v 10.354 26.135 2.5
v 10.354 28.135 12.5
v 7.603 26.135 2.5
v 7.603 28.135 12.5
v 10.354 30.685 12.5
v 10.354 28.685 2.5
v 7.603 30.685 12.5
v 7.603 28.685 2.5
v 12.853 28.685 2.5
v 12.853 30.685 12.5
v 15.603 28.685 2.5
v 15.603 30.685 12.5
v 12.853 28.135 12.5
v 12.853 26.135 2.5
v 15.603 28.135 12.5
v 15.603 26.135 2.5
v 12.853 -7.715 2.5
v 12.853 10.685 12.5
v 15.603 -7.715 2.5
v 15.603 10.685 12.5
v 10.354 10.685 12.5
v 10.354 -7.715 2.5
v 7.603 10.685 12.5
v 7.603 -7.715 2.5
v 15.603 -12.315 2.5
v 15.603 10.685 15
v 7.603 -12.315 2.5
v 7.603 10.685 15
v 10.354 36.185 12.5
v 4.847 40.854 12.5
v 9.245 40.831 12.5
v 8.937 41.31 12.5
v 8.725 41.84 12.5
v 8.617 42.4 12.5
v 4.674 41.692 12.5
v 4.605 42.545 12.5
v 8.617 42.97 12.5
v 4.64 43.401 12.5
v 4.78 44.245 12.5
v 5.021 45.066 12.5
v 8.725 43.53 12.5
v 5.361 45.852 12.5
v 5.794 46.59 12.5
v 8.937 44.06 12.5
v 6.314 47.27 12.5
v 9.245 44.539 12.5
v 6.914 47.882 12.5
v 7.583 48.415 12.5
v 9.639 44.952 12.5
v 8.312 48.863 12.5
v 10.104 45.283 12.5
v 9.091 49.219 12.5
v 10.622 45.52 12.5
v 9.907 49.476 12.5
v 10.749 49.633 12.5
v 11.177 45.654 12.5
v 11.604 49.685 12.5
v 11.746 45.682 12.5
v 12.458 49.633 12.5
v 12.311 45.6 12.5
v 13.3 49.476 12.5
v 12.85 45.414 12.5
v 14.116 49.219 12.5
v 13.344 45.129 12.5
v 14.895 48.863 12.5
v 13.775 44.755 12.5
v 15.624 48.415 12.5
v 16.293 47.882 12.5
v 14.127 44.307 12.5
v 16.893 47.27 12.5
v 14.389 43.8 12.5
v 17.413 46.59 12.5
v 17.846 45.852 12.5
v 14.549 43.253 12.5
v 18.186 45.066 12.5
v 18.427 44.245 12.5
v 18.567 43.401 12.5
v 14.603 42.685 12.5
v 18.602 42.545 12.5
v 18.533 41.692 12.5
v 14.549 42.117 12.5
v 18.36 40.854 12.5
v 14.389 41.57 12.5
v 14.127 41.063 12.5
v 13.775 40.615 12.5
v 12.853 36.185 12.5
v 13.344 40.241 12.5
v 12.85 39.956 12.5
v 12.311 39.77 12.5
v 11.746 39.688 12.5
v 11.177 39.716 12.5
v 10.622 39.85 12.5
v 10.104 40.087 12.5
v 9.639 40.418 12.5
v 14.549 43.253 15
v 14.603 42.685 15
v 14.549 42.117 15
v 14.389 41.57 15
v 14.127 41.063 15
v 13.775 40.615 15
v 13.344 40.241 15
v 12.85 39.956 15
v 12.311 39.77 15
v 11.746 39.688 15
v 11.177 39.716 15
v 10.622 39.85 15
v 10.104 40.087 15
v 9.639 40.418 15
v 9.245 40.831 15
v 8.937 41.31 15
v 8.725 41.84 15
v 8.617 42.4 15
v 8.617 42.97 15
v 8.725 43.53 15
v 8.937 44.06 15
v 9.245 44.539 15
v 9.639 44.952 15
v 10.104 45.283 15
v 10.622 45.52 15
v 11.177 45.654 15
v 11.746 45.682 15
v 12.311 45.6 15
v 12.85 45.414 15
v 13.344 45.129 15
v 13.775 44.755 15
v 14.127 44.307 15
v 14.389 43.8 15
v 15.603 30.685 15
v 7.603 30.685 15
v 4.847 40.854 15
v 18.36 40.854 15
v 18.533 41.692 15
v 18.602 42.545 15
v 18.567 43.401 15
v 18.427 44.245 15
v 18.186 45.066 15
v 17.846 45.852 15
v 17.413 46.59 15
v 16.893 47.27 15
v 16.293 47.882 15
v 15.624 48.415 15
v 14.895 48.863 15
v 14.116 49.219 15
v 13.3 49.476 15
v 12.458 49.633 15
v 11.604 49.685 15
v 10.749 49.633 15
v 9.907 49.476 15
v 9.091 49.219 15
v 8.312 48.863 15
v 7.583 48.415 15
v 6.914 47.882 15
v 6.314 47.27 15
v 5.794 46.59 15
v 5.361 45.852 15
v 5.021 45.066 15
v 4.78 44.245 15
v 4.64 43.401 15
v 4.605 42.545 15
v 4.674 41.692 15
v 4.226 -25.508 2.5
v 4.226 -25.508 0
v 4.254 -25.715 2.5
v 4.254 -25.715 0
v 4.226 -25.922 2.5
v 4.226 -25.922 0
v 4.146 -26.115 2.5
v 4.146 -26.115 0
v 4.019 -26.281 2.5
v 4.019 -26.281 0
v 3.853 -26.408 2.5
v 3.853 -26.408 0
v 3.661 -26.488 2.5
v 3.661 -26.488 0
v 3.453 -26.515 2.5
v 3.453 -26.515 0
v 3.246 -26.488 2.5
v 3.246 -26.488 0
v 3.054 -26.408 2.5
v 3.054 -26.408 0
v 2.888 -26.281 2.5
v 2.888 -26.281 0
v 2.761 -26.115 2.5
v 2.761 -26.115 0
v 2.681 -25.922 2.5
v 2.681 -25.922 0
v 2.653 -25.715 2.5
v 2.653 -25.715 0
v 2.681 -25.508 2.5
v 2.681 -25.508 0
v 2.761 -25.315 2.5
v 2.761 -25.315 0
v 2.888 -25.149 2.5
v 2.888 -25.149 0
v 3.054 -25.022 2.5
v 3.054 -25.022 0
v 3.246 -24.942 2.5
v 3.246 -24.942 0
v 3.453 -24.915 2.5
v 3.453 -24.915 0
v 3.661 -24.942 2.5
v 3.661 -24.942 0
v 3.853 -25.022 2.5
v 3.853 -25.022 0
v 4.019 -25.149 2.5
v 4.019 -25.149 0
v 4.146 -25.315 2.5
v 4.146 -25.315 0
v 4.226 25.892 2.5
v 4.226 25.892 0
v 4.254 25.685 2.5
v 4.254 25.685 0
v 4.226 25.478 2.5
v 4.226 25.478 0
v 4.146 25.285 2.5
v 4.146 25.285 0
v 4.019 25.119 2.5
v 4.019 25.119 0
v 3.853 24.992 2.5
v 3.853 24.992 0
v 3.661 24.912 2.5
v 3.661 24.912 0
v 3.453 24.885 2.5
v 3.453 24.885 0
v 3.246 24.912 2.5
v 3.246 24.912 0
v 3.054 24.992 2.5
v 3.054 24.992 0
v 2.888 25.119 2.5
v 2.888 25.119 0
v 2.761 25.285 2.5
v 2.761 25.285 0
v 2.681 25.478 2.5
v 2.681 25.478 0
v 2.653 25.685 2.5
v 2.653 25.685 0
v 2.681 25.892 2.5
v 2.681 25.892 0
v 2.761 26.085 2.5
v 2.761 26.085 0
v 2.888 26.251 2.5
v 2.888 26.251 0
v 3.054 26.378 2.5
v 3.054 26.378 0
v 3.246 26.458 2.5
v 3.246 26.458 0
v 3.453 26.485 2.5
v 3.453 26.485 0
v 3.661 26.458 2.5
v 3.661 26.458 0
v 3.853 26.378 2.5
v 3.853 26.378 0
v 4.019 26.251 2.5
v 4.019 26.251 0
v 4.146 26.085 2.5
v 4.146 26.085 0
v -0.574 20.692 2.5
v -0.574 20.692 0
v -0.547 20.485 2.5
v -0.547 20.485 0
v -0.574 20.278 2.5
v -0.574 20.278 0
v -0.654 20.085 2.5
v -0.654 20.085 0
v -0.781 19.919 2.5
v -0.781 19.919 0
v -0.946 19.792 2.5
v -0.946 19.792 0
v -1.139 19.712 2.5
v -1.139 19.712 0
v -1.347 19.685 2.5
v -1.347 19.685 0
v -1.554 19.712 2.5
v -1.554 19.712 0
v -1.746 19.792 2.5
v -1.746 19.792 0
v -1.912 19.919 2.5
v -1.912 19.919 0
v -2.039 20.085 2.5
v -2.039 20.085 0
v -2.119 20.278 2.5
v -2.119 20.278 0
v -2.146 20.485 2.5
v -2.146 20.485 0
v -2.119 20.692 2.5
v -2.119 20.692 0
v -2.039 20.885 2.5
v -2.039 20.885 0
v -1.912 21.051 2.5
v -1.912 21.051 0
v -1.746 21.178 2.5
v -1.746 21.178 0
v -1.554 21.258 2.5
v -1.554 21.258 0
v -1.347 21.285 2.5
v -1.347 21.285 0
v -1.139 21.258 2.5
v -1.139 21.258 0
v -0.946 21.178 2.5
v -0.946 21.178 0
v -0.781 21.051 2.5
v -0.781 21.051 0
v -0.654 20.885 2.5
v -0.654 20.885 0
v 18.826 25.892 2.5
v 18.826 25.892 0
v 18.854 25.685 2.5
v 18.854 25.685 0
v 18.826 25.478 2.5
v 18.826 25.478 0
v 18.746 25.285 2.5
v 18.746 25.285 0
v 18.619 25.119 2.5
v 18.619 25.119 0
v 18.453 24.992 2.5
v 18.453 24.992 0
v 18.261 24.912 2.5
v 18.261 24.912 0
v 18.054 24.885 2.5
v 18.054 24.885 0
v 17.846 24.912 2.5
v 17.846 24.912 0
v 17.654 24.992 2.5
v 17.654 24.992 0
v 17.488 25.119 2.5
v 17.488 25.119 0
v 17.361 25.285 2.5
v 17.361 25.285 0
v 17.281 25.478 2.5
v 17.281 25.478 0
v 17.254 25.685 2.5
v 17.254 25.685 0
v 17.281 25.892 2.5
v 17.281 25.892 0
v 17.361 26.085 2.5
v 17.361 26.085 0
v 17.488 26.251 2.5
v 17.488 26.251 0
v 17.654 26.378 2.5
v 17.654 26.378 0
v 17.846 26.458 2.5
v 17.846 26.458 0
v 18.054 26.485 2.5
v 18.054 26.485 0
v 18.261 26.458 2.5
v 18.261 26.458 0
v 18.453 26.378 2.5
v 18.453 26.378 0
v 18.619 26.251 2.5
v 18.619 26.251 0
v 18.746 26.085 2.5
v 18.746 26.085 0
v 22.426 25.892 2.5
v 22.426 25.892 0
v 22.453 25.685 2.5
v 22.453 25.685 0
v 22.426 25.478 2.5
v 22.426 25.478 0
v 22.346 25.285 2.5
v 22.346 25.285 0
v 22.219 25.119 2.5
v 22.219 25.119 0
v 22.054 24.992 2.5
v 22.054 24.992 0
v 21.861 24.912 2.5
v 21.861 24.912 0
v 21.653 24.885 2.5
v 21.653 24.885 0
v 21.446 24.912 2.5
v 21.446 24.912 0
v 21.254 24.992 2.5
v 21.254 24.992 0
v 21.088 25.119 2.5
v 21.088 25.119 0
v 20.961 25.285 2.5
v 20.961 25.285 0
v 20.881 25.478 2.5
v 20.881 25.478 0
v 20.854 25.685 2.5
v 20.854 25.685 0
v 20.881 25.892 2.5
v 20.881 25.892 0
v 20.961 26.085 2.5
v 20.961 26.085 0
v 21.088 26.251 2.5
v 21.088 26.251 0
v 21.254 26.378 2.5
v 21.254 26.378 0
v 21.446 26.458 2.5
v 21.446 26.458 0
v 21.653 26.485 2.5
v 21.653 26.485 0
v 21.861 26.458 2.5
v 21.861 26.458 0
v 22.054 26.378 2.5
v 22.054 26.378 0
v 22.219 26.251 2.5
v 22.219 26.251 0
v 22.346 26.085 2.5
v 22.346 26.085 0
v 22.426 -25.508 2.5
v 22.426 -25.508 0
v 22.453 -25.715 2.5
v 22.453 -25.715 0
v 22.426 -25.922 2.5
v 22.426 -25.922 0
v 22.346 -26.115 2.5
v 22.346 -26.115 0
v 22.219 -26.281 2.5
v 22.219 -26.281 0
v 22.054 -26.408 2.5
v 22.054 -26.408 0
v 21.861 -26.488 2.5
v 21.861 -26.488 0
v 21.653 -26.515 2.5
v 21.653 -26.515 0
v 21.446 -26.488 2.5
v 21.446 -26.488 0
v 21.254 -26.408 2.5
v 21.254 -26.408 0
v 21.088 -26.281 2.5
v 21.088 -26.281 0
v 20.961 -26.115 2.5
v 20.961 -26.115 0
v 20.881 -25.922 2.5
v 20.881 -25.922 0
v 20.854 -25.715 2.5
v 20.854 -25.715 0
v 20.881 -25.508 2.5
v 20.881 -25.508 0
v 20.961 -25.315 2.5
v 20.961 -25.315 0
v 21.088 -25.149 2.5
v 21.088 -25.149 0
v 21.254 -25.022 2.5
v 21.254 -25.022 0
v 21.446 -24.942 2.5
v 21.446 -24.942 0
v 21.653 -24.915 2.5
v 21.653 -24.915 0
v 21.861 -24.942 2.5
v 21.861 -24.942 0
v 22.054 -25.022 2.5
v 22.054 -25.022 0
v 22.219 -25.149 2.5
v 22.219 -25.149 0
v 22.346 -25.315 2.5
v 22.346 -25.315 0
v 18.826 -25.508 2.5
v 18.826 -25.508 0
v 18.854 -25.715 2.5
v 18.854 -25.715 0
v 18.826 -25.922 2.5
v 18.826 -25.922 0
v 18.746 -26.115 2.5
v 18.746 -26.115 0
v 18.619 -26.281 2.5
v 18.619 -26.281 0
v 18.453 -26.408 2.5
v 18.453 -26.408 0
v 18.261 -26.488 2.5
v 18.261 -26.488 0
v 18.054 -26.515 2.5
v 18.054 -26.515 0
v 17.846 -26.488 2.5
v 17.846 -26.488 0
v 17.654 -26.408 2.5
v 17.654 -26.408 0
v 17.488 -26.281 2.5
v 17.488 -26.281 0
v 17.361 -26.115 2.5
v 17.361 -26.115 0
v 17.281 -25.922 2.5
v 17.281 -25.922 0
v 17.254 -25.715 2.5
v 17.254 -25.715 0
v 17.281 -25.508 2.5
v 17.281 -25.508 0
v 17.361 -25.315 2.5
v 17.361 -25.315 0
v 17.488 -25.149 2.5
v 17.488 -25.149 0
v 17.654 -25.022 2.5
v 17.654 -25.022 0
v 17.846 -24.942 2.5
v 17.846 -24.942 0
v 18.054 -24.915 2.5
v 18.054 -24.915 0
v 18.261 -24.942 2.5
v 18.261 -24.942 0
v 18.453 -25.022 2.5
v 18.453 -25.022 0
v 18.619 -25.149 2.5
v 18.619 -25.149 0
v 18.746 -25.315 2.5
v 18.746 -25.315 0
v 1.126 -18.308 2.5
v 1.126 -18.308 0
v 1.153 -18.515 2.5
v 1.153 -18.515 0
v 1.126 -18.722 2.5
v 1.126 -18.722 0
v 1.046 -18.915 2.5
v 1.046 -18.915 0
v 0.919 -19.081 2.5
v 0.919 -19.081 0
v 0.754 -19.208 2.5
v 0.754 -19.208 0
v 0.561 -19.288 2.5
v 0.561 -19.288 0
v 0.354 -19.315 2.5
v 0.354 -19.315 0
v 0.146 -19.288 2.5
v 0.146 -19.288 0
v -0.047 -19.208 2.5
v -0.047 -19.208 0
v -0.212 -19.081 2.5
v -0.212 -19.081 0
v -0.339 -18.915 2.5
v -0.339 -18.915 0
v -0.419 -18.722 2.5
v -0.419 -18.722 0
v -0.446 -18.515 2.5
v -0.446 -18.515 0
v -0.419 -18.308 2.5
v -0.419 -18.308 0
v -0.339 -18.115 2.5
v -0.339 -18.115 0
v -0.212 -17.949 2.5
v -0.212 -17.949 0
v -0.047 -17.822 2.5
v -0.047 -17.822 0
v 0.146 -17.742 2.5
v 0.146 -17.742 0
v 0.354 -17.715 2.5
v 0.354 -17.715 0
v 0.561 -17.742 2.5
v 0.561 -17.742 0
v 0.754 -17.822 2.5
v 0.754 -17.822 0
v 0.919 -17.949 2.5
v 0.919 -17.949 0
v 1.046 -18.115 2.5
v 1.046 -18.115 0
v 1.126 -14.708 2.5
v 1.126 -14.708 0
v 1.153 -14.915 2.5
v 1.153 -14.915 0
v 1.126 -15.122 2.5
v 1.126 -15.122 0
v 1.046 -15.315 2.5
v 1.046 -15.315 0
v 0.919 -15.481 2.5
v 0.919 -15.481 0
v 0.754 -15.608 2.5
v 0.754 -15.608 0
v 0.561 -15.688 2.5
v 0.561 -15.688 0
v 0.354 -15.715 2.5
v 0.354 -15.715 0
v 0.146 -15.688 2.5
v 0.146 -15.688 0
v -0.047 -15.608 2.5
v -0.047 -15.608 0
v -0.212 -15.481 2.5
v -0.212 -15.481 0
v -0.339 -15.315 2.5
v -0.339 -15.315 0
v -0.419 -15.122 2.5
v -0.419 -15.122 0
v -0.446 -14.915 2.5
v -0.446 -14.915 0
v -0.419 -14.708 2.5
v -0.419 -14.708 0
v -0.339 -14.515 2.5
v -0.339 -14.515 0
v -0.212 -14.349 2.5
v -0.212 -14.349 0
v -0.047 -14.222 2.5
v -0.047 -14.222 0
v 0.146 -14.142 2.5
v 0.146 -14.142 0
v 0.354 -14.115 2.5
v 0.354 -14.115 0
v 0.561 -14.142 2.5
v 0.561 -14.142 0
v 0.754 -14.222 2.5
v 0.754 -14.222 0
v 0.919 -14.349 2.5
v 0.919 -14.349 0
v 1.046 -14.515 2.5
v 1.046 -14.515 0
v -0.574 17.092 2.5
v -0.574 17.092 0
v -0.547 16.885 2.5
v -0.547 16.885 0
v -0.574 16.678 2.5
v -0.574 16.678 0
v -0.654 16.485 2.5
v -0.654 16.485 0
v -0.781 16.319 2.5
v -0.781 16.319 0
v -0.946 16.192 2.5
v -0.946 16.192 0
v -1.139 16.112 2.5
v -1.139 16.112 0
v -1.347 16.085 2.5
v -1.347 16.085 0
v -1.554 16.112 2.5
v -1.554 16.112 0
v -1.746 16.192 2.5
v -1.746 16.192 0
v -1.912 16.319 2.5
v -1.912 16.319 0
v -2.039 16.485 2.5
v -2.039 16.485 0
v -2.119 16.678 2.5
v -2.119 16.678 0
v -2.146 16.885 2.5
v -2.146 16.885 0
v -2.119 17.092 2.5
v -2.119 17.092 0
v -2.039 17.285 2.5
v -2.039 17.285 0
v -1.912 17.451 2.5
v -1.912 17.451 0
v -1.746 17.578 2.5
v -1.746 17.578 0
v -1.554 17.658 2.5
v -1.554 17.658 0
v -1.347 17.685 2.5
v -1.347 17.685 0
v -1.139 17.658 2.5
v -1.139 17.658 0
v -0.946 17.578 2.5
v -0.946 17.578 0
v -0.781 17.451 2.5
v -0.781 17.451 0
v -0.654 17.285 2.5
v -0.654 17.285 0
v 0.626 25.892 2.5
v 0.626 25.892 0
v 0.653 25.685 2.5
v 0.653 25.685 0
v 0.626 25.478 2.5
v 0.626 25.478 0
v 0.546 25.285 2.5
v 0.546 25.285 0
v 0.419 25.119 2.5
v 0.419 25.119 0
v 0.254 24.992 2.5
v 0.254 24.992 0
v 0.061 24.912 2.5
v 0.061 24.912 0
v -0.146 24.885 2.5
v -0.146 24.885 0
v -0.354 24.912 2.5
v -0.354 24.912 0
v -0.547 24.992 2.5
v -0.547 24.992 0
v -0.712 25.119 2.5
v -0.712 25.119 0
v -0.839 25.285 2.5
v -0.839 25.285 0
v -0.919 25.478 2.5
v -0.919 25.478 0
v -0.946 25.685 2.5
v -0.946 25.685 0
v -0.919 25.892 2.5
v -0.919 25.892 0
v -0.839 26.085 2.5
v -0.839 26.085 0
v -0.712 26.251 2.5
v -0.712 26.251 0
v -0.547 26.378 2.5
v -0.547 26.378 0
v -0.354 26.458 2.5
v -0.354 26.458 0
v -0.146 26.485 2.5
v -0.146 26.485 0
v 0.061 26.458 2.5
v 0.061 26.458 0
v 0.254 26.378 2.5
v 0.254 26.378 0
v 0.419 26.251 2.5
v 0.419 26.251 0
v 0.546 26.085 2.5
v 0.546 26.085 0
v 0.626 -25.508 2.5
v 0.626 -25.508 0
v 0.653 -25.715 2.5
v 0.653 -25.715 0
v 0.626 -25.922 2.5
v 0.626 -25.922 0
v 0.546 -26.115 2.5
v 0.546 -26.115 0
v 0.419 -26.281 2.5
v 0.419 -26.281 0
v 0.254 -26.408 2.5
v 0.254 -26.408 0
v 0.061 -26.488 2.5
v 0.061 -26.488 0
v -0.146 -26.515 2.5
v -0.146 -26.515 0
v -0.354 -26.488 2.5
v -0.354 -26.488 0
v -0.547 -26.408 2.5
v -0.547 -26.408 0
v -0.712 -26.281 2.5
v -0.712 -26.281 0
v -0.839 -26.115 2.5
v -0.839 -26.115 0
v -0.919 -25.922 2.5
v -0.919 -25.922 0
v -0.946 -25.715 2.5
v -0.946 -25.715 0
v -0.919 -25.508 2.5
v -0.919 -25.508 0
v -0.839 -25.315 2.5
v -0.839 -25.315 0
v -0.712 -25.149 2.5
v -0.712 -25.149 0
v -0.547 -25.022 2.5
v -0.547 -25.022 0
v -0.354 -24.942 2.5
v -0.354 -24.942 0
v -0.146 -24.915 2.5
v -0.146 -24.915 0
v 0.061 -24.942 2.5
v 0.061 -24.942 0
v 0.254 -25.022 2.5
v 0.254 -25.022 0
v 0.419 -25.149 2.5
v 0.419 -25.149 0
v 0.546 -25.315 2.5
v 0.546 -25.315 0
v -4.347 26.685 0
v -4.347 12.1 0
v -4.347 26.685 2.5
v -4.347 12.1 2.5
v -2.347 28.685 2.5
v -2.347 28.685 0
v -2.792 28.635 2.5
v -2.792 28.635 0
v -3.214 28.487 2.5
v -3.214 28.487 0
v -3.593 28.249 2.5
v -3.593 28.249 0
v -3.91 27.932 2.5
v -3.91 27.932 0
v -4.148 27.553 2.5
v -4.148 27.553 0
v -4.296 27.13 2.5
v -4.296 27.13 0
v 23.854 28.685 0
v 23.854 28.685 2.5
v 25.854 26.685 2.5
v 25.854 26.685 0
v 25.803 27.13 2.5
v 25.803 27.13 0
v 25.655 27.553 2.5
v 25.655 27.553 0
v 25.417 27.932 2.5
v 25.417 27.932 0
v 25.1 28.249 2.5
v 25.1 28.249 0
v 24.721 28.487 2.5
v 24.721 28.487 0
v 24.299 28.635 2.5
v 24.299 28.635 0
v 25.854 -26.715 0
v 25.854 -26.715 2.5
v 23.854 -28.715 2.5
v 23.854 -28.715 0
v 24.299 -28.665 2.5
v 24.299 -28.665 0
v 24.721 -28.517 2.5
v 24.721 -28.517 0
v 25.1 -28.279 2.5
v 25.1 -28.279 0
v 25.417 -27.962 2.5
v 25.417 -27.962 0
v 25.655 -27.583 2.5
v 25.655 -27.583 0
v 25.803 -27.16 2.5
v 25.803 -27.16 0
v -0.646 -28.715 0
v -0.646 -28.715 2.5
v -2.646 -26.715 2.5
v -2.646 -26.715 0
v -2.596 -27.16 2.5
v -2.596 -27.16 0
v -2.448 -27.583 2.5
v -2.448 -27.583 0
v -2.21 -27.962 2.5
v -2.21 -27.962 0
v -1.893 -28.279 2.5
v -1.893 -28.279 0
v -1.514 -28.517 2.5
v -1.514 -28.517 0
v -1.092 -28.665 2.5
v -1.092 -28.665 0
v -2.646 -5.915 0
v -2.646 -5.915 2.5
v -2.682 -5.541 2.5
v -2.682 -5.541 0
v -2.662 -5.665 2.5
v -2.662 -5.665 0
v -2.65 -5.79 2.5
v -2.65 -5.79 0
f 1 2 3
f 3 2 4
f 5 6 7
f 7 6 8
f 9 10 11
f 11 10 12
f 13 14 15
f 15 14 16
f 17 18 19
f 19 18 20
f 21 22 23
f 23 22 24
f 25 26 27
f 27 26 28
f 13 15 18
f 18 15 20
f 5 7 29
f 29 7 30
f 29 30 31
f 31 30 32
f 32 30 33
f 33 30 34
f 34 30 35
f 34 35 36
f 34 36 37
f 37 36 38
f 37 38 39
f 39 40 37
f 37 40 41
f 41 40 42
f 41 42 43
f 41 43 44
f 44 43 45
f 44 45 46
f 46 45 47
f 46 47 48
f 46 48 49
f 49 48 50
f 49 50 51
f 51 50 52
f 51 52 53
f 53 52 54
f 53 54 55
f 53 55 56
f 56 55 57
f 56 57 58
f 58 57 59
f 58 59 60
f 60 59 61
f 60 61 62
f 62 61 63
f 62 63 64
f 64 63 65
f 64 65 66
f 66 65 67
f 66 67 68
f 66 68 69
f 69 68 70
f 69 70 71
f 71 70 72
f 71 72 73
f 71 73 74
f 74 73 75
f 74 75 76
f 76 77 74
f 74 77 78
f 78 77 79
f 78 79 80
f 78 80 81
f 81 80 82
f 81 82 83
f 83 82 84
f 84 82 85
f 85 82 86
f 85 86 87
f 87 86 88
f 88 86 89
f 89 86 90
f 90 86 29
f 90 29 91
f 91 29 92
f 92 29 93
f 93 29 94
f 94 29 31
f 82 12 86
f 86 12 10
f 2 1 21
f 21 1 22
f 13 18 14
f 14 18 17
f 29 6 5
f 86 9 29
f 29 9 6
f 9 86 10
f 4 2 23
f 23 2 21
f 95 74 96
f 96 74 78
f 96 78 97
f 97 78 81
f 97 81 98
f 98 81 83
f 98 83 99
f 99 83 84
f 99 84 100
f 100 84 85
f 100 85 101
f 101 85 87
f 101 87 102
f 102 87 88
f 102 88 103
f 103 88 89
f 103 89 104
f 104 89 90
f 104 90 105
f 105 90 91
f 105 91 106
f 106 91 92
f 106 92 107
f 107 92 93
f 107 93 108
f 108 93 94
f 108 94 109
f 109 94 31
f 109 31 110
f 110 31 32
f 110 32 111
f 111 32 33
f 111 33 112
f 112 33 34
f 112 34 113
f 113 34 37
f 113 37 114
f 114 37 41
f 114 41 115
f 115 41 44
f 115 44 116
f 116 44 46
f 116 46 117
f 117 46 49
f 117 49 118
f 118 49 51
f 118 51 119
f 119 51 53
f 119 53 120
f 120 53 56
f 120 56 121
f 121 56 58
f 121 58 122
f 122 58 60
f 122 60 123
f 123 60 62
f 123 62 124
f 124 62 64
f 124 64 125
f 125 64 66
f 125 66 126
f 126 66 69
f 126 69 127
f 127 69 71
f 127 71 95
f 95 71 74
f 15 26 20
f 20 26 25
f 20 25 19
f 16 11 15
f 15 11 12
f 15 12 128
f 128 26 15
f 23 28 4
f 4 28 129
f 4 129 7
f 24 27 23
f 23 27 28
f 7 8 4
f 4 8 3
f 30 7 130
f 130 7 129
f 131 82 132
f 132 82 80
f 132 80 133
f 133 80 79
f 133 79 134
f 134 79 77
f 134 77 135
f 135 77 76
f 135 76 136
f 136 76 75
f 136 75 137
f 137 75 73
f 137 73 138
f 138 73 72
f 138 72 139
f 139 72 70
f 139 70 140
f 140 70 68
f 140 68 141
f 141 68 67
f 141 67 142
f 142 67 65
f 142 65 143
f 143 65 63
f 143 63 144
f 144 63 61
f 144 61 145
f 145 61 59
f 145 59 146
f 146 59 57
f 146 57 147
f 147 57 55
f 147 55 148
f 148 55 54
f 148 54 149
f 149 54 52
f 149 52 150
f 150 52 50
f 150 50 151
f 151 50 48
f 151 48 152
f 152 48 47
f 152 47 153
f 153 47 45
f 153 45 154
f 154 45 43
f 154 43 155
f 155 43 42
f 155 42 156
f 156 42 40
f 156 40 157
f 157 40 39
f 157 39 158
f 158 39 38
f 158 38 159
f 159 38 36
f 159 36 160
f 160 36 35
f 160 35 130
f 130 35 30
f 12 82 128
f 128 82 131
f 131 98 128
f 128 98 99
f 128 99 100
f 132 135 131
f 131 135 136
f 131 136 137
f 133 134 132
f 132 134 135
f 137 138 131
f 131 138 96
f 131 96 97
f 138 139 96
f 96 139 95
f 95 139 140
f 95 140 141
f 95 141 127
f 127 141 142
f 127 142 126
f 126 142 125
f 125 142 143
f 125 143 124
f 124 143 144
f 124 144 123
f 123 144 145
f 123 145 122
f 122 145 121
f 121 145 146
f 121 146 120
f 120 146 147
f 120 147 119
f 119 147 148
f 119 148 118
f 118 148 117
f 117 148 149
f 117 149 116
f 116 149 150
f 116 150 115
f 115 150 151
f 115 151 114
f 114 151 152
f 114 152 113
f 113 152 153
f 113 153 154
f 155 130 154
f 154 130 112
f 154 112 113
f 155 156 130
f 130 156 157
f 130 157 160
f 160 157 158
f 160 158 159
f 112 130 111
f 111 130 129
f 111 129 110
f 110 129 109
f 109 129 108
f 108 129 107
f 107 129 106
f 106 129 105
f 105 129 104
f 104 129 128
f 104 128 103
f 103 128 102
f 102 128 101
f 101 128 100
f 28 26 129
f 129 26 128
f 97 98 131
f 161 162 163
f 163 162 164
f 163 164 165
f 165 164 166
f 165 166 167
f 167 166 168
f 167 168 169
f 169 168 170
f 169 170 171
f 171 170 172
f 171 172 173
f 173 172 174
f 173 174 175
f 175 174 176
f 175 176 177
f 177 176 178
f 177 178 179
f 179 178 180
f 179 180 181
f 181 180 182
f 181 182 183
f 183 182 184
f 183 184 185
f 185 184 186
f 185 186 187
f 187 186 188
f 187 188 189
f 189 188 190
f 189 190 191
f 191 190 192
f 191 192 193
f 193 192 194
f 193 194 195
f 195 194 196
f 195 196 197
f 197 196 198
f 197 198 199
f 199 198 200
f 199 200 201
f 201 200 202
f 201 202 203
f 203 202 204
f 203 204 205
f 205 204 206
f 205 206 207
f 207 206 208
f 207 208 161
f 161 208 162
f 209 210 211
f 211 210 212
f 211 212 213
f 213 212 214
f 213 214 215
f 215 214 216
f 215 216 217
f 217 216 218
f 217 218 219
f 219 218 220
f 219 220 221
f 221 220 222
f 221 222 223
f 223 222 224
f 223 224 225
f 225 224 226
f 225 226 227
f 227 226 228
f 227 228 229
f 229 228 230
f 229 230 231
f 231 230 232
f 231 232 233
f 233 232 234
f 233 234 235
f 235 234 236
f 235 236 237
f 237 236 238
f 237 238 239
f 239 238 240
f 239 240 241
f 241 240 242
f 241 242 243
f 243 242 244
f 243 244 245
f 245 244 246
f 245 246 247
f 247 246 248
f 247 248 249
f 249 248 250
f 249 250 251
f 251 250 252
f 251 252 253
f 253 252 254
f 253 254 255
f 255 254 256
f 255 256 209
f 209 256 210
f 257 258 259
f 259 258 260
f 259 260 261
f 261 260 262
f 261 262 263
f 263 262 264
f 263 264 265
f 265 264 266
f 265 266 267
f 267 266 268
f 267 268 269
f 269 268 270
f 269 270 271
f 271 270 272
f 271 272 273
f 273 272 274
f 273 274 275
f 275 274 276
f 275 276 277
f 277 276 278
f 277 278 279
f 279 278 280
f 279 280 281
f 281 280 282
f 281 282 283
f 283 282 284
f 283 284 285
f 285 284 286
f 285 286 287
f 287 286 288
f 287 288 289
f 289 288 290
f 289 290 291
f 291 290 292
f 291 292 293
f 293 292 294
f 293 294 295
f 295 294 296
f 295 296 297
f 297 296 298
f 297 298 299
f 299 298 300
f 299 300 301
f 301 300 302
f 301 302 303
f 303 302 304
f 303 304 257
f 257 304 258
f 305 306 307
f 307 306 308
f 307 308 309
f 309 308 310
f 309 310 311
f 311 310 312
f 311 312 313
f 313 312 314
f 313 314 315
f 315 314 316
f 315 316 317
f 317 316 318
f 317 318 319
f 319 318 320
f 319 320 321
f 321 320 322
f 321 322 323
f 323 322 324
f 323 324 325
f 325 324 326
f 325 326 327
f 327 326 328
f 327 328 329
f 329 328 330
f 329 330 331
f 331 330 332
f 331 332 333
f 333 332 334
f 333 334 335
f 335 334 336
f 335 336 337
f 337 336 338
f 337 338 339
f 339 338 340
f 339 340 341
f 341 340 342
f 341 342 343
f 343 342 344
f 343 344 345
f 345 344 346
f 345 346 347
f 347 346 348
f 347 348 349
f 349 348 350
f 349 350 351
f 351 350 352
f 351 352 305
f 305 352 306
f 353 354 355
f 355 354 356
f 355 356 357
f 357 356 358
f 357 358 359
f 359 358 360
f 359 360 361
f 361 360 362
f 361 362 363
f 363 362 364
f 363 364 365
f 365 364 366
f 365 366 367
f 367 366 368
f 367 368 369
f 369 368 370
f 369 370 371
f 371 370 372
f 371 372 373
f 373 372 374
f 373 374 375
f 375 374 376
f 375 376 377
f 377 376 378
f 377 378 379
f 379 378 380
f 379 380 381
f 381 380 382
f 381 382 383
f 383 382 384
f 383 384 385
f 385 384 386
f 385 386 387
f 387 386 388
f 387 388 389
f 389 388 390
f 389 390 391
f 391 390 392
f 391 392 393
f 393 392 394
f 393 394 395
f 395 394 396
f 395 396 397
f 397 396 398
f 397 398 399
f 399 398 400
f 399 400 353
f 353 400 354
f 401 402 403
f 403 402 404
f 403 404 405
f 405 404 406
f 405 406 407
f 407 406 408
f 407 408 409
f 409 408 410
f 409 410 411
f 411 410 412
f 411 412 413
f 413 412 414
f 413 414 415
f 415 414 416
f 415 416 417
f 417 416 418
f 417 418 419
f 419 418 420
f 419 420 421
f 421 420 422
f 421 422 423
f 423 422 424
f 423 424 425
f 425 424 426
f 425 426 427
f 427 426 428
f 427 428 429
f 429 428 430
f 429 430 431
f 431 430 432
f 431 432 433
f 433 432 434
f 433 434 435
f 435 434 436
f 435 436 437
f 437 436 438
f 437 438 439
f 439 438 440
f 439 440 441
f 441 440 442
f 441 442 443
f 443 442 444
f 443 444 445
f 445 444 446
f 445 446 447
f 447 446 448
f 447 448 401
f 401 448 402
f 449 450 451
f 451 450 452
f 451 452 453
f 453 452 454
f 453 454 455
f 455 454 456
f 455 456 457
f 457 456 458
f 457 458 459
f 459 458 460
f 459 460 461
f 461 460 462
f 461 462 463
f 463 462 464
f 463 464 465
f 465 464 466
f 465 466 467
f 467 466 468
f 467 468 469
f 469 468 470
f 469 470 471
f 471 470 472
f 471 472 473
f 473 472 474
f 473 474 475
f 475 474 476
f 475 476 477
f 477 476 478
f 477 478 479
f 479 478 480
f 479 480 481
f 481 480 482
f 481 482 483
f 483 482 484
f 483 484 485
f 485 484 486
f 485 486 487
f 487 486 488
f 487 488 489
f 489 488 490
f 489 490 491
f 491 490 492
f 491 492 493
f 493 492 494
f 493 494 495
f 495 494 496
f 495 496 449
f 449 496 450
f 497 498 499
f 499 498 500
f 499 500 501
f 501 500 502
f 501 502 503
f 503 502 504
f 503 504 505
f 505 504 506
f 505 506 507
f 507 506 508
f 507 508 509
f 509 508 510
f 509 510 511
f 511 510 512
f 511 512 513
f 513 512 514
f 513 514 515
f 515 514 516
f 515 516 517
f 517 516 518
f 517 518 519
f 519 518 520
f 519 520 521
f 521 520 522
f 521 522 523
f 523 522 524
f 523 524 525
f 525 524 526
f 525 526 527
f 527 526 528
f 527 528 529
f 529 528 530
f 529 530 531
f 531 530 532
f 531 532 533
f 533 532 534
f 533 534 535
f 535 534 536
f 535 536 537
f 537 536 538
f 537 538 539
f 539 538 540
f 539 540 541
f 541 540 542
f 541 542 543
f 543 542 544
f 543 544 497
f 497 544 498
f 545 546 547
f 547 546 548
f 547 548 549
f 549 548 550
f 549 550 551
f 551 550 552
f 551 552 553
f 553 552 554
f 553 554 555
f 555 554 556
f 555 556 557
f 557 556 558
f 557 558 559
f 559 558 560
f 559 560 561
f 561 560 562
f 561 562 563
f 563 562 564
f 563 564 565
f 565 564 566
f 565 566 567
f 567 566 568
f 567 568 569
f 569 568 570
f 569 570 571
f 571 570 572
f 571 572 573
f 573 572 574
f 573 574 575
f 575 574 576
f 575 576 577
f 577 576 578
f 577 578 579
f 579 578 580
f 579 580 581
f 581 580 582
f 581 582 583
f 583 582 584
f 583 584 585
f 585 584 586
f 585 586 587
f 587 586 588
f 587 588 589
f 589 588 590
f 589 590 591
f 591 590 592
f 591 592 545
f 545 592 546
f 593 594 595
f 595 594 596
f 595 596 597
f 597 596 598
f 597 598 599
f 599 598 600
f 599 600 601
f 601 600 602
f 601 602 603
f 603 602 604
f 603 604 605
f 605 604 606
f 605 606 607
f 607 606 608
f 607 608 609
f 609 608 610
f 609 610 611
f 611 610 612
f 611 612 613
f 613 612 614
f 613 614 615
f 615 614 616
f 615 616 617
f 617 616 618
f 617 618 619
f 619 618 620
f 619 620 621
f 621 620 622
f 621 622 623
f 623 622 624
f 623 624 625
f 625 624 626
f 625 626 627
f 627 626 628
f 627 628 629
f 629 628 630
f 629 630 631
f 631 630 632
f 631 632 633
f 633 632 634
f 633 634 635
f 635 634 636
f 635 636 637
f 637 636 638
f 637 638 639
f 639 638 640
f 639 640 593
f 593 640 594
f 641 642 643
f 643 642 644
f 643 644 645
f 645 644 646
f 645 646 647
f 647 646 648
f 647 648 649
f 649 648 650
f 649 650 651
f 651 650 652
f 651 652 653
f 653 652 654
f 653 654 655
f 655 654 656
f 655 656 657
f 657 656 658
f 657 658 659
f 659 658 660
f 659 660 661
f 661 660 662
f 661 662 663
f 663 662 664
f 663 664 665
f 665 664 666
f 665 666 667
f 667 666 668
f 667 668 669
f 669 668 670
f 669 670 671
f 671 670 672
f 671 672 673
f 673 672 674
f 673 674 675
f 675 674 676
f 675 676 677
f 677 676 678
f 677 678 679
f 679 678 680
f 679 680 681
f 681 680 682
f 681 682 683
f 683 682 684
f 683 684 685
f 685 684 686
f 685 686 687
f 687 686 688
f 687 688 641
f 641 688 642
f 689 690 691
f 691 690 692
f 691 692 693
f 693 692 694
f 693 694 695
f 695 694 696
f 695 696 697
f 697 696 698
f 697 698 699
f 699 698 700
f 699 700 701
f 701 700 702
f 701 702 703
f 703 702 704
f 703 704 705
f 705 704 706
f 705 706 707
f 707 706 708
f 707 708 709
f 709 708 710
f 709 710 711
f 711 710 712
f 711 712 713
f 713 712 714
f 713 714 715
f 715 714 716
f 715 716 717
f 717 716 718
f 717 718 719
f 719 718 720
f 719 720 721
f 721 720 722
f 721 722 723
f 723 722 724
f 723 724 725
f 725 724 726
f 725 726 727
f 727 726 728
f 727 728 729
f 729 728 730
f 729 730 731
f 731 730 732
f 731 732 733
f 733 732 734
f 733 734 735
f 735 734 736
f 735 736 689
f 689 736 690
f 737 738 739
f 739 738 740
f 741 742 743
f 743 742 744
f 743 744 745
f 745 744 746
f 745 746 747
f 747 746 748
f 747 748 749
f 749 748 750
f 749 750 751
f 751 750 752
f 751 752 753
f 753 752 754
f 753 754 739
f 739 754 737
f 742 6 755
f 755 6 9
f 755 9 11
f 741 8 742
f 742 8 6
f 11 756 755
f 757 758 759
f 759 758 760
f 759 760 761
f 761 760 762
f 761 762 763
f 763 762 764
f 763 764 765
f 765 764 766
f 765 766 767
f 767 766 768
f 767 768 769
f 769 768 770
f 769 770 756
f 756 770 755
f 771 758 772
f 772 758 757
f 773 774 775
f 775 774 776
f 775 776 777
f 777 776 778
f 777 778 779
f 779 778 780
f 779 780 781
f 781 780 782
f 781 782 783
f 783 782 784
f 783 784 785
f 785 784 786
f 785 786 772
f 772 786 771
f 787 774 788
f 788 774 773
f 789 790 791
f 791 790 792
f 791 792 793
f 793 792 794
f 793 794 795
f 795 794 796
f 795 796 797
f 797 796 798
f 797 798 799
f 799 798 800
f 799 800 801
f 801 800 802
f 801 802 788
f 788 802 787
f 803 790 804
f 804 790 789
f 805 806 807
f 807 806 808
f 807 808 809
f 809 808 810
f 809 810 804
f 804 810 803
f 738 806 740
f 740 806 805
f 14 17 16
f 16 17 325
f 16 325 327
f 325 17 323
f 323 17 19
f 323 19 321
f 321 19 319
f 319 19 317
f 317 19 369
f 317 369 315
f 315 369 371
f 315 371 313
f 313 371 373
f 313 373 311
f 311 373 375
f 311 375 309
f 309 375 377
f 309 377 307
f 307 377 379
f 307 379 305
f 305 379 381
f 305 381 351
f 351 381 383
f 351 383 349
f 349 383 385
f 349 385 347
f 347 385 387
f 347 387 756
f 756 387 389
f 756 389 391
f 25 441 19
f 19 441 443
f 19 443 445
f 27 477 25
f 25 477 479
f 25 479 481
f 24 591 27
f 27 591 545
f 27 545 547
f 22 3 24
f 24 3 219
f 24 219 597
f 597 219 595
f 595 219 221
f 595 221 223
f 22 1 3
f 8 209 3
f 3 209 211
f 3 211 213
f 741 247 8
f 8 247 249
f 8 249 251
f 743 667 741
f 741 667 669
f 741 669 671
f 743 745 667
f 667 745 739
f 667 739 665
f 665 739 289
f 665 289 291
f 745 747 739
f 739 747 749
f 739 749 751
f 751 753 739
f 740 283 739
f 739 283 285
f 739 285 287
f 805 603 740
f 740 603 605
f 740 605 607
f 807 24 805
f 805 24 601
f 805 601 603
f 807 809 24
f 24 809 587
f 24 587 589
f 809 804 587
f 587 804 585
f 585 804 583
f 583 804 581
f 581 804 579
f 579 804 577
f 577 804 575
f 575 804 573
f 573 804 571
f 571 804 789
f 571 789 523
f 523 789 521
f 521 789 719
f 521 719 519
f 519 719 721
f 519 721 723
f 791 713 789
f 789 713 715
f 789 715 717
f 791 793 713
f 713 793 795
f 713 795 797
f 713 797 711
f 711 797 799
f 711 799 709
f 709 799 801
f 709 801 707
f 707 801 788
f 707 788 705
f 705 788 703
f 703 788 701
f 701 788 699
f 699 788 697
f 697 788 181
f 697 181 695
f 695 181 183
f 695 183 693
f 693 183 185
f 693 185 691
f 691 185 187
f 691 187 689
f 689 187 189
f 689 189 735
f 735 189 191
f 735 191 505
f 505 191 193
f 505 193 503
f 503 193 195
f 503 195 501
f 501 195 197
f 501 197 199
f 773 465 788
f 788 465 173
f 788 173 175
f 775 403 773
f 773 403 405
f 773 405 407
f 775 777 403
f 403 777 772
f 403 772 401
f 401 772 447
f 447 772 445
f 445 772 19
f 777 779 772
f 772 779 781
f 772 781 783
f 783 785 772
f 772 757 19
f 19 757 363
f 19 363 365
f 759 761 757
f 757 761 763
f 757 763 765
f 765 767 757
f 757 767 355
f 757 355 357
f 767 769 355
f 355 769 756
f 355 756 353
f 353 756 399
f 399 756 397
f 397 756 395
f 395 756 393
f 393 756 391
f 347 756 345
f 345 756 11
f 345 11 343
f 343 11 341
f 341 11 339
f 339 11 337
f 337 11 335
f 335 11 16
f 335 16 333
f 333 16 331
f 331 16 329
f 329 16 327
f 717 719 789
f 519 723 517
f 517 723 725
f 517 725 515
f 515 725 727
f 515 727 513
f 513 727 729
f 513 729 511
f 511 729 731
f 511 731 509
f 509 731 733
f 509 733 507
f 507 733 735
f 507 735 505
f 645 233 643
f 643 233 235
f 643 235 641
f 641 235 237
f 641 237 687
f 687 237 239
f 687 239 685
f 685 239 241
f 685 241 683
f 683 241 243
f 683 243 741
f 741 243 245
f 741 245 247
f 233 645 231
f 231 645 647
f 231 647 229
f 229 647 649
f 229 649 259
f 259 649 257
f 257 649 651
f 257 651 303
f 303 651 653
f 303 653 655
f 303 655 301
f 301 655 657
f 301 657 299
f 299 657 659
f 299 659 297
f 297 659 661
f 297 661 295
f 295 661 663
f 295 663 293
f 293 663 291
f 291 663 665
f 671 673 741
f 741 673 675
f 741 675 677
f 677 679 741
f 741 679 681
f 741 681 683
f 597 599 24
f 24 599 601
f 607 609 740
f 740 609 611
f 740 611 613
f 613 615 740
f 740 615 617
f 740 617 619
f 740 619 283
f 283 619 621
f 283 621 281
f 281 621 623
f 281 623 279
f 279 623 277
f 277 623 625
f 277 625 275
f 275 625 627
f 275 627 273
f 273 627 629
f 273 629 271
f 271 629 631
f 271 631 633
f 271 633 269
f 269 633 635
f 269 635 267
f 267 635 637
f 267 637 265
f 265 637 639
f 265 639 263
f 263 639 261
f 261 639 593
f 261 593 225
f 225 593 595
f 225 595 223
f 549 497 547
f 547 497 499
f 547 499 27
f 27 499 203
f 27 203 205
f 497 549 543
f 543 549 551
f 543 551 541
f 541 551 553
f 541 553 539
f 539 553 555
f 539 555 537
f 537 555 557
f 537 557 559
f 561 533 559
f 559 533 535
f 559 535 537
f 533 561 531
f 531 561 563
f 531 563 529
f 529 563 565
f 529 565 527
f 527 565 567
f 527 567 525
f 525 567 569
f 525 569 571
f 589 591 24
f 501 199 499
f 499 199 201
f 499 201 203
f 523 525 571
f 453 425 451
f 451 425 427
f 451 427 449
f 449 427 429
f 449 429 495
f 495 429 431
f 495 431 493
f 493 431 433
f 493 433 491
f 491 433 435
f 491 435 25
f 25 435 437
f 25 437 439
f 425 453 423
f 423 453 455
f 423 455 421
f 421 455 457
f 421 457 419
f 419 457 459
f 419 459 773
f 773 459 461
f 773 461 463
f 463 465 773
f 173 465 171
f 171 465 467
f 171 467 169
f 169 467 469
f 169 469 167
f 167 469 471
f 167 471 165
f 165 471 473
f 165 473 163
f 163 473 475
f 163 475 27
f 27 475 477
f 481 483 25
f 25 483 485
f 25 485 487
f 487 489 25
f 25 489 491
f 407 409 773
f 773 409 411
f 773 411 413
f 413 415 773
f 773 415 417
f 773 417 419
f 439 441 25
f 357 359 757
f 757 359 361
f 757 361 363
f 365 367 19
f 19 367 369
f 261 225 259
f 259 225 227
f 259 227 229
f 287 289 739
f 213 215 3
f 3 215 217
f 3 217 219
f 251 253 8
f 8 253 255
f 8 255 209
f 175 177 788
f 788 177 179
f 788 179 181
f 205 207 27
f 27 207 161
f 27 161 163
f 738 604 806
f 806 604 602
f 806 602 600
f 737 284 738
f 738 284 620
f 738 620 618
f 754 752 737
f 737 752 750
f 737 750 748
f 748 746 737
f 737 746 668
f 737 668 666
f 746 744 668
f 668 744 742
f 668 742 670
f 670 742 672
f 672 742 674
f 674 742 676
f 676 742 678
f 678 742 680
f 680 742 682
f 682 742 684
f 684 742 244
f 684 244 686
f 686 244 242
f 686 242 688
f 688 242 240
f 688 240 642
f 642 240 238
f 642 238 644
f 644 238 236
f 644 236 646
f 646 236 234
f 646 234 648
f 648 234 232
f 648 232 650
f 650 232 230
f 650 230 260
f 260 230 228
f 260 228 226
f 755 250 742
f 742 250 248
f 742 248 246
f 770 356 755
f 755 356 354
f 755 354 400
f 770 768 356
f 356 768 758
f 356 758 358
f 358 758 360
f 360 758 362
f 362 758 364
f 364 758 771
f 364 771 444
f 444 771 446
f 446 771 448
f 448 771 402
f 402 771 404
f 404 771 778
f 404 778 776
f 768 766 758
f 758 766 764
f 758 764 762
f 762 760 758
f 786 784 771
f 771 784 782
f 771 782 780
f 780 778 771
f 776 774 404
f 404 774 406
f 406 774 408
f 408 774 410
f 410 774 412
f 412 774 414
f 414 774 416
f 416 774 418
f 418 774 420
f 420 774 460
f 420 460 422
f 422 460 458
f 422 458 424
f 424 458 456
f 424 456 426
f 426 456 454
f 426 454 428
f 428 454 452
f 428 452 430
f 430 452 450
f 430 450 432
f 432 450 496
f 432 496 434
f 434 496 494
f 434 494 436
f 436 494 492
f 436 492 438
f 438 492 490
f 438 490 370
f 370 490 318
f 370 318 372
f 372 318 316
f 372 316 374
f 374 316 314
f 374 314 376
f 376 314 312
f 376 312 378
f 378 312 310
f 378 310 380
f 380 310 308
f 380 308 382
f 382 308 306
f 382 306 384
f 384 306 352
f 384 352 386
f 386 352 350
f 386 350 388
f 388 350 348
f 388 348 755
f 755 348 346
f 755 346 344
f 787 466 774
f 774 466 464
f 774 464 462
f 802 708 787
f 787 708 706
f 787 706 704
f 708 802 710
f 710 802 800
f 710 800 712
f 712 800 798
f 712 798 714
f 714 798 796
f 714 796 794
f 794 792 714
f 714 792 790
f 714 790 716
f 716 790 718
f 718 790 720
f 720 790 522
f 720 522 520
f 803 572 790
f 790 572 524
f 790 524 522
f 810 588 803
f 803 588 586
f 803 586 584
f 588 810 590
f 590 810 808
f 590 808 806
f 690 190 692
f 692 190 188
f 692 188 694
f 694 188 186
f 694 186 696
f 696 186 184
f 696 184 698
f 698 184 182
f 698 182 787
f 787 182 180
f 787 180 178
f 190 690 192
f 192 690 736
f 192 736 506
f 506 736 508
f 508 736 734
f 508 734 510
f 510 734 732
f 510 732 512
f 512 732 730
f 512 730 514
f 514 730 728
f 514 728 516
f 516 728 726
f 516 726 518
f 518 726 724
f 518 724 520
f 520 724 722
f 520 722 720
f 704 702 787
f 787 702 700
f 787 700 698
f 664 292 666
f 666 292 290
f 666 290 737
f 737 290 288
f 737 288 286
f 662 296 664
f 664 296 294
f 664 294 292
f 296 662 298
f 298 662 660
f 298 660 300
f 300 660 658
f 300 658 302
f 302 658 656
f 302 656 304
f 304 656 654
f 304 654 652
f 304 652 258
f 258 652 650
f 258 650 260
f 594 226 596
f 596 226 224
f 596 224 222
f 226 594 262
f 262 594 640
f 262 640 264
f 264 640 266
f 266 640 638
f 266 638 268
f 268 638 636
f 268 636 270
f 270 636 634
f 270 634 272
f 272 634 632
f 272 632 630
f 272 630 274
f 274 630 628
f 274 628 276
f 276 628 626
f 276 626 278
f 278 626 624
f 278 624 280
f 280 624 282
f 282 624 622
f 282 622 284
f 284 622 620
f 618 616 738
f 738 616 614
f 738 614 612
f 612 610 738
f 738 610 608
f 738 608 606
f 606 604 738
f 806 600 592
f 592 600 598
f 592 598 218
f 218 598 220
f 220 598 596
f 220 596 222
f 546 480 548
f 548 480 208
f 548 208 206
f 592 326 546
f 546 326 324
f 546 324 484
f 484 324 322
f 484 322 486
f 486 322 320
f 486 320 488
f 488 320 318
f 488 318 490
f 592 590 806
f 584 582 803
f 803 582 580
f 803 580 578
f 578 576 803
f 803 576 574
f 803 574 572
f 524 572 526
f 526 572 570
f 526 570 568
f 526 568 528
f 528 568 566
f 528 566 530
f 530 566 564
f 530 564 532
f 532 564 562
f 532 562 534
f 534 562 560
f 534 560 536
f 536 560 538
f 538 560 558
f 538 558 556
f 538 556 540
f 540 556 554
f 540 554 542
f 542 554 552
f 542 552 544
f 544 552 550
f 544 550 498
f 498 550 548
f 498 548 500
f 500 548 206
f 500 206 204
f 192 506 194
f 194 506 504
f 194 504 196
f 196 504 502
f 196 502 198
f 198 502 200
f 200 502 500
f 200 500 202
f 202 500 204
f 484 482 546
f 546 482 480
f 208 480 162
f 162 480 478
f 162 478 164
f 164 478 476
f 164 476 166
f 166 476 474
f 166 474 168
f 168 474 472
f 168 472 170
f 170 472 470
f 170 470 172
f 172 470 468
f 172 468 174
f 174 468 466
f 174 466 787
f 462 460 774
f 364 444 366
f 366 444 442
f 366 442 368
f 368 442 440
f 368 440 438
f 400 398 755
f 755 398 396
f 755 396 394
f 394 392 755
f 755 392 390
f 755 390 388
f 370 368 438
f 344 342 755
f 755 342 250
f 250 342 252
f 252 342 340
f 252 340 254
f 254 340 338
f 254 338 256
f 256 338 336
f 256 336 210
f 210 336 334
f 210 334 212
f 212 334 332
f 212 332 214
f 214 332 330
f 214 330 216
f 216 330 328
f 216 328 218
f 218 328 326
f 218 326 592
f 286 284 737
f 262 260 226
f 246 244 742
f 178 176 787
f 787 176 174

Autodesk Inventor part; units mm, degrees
ref_plane "YZ Plane" through (0, 0, 0) normal (1, 0, 0) x (0, 1, 0)
ref_plane "XZ Plane" through (0, 0, 0) normal (0, 1, 0) x (-1, 0, 0)
ref_plane "XY Plane" through (0, 0, 0) normal (0, 0, 1) x (1, 0, 0)
ref_plane "РабПлоскость1" through (0, 0, 0) normal (0, 0, 1) x (1, 0, 0)
sketch "Эскиз1" plane through (0, 0, 0) normal (0, 0, 1) x (1, 0, 0)
  line L0 (15.9535, 22.685) -> (15.9535, 17.285) projected
  line L1 (15.9535, 17.285) -> (5.5535, 17.285) projected
  line L2 (5.5535, 17.285) -> (5.5535, 22.685) projected
  line L3 (5.5535, 22.685) -> (15.9535, 22.685) projected
  line L4 (15.9535, -17.315) -> (15.9535, -22.715) projected
  line L5 (15.9535, -22.715) -> (5.5535, -22.715) projected
  line L6 (5.5535, -22.715) -> (5.5535, -17.315) projected
  line L7 (5.5535, -17.315) -> (15.9535, -17.315) projected
  arc A0 (-2.3465, 28.685) -> (-4.3465, 26.685) centre (-2.3465, 26.685) ccw projected
  line L8 (-4.3465, 12.1) -> (-4.3465, 26.685) projected
  arc A1 (-5.6809, 10.2141) -> (-4.3465, 12.1) centre (-6.3465, 12.1) ccw projected
  line L9 (-11.5122, 8.156) -> (-5.6809, 10.2141) projected
  arc A2 (-11.5122, 8.156) -> (-12.8465, 6.27) centre (-10.8465, 6.27) ccw projected
  line L10 (-12.8465, -1.915) -> (-12.8465, 6.27) projected
  arc A3 (-12.8465, -1.915) -> (-10.8465, -3.915) centre (-10.8465, -1.915) ccw projected
  line L11 (-4.6465, -3.915) -> (-10.8465, -3.915) projected
  arc A4 (-2.6465, -5.915) -> (-4.6465, -3.915) centre (-4.6465, -5.915) ccw projected
  line L12 (-2.6465, -26.715) -> (-2.6465, -5.915) projected
  arc A5 (-2.6465, -26.715) -> (-0.6465, -28.715) centre (-0.6465, -26.715) ccw projected
  line L13 (23.8535, -28.715) -> (-0.6465, -28.715) projected
  arc A6 (23.8535, -28.715) -> (25.8535, -26.715) centre (23.8535, -26.715) ccw projected
  line L14 (25.8535, 26.685) -> (25.8535, -26.715) projected
  arc A7 (25.8535, 26.685) -> (23.8535, 28.685) centre (23.8535, 26.685) ccw projected
  line L15 (-2.3465, 28.685) -> (23.8535, 28.685) projected
  circle A8 centre (18.0535, 25.685) radius 0.8 projected
  circle A9 centre (21.6535, 25.685) radius 0.8 projected
  circle A10 centre (21.6535, -25.715) radius 0.8 projected
  circle A11 centre (18.0535, -25.715) radius 0.8 projected
  circle A12 centre (0.3535, -18.515) radius 0.8 projected
  circle A13 centre (0.3535, -14.915) radius 0.8 projected
  circle A14 centre (-1.3465, 16.885) radius 0.8 projected
  circle A15 centre (-1.3465, 20.485) radius 0.8 projected
  circle A16 centre (-0.1465, 25.685) radius 0.8 projected
  circle A17 centre (3.4535, 25.685) radius 0.8 projected
  circle A18 centre (-0.1465, -25.715) radius 0.8 projected
  circle A19 centre (3.4535, -25.715) radius 0.8 projected
  line L16 (-4.3465, 12.1) -> (-2.6465, -5.915)
  circle A20 centre (51.6035, 35.685) radius 3
  circle A21 centre (51.6035, 35.685) radius 6
  line L17 (11.6035, -28.715) -> (11.6035, 28.685) construction
  line L18 (56.9244, 32.9123) -> (25.8535, -26.715)
  line L19 (50.1799, 41.5137) -> (-2.3465, 28.685)
  point P0 (0, 0)
  point P1 (-2.6818, -5.5409)
  dimension "d11" = 6
  dimension "d12" = 12
  dimension "d13" = 7
  dimension "d14" = 40
extrude "Выдавливание1" add sketch "Эскиз1" along normal blind 2.5 contours L0 L1 L2 L3 | L4 L5 L6 L7 | L15 A7 L14 A6 L13 A5 L12 A4 L16 L8 A0
ref_plane "РабПлоскость4" through (0, 0, 12.5) normal (0, 0, 1) x (1, 0, 0)
sketch "Эскиз7" plane through (0, 0, 12.5) normal (0, 0, 1) x (1, 0, 0)
  circle A0 centre (11.6035, 42.685) radius 3
  circle A1 centre (11.6035, 42.685) radius 7
  line L0 (18.3597, 40.8537) -> (15.6035, 30.685)
  line L1 (15.6035, 30.685) -> (15.6035, 10.685)
  line L2 (15.6035, 10.685) -> (7.6035, 10.685)
  line L3 (7.6035, 10.685) -> (7.6035, 30.685)
  line L4 (7.6035, 30.685) -> (4.8473, 40.8537)
  line L5 (-0.6465, -28.715) -> (23.8535, -28.715) projected
  line L6 (11.6035, -28.715) -> (11.6035, 28.685) construction
  line L7 (23.8535, 28.685) -> (-2.3465, 28.685) projected
  point P0 (0, 0)
  point P1 (11.6035, 10.685)
  dimension "d46" = 6
  dimension "d47" = 14
  dimension "d48" = 32
  dimension "d49" = 4
  dimension "d50" = 18
  dimension "d51" = 20
  dimension "d52" = 20
extrude "Выдавливание5" add sketch "Эскиз7" along normal blind 2.5
ref_plane "РабПлоскость5" through (11.6035, 10.685, 12.5) normal (1, 0, 0) x (0, 0, -1)
sketch "Эскиз8" plane through (11.6035, 10.685, 12.5) normal (1, 0, 0) x (0, 0, -1)
  line L0 (0, 20) -> (0, 30.1687) projected
  line L1 (10, 18) -> (10, 16) projected
  line L2 (0, 20) -> (10, 18)
  line L3 (-2.5, 20) -> (-2.5, 0) projected
  line L4 (-2.5, 0) -> (10, -23)
  line L5 (10, -37.4) -> (10, 16) projected
  line L6 (0, 0) -> (0, 20) projected
  line L7 (0, 0) -> (-2.5, 0) projected
  line L8 (0, 20) -> (0, 0) projected
  line L9 (0, 0) -> (10, -18.4)
  line L10 (10, -16.6) -> (10, -37.4) projected
  line L11 (0, 17.4505) -> (10, 15.4505)
  line L12 (10, 16) -> (10, 1.415) projected
  line L13 (12.5, 18) -> (10, 18) projected
  line L14 (10, 18) -> (0, 25.5)
  point P0 (12.5, -10.685)
  dimension "d55" = 23
  dimension "d56" = 2.5
  dimension "d61" = 5.5
extrude "Выдавливание6" add sketch "Эскиз8" along normal mid plane 2.5 contours L0 L14 L2 | L11 L5 L9 L6
extrude "Выдавливание7" add sketch "Эскиз8" along normal mid plane 8 contours L2 L1 L5 L11 L6 | L9 L5 L4 L7
properties part number "Fastener"
